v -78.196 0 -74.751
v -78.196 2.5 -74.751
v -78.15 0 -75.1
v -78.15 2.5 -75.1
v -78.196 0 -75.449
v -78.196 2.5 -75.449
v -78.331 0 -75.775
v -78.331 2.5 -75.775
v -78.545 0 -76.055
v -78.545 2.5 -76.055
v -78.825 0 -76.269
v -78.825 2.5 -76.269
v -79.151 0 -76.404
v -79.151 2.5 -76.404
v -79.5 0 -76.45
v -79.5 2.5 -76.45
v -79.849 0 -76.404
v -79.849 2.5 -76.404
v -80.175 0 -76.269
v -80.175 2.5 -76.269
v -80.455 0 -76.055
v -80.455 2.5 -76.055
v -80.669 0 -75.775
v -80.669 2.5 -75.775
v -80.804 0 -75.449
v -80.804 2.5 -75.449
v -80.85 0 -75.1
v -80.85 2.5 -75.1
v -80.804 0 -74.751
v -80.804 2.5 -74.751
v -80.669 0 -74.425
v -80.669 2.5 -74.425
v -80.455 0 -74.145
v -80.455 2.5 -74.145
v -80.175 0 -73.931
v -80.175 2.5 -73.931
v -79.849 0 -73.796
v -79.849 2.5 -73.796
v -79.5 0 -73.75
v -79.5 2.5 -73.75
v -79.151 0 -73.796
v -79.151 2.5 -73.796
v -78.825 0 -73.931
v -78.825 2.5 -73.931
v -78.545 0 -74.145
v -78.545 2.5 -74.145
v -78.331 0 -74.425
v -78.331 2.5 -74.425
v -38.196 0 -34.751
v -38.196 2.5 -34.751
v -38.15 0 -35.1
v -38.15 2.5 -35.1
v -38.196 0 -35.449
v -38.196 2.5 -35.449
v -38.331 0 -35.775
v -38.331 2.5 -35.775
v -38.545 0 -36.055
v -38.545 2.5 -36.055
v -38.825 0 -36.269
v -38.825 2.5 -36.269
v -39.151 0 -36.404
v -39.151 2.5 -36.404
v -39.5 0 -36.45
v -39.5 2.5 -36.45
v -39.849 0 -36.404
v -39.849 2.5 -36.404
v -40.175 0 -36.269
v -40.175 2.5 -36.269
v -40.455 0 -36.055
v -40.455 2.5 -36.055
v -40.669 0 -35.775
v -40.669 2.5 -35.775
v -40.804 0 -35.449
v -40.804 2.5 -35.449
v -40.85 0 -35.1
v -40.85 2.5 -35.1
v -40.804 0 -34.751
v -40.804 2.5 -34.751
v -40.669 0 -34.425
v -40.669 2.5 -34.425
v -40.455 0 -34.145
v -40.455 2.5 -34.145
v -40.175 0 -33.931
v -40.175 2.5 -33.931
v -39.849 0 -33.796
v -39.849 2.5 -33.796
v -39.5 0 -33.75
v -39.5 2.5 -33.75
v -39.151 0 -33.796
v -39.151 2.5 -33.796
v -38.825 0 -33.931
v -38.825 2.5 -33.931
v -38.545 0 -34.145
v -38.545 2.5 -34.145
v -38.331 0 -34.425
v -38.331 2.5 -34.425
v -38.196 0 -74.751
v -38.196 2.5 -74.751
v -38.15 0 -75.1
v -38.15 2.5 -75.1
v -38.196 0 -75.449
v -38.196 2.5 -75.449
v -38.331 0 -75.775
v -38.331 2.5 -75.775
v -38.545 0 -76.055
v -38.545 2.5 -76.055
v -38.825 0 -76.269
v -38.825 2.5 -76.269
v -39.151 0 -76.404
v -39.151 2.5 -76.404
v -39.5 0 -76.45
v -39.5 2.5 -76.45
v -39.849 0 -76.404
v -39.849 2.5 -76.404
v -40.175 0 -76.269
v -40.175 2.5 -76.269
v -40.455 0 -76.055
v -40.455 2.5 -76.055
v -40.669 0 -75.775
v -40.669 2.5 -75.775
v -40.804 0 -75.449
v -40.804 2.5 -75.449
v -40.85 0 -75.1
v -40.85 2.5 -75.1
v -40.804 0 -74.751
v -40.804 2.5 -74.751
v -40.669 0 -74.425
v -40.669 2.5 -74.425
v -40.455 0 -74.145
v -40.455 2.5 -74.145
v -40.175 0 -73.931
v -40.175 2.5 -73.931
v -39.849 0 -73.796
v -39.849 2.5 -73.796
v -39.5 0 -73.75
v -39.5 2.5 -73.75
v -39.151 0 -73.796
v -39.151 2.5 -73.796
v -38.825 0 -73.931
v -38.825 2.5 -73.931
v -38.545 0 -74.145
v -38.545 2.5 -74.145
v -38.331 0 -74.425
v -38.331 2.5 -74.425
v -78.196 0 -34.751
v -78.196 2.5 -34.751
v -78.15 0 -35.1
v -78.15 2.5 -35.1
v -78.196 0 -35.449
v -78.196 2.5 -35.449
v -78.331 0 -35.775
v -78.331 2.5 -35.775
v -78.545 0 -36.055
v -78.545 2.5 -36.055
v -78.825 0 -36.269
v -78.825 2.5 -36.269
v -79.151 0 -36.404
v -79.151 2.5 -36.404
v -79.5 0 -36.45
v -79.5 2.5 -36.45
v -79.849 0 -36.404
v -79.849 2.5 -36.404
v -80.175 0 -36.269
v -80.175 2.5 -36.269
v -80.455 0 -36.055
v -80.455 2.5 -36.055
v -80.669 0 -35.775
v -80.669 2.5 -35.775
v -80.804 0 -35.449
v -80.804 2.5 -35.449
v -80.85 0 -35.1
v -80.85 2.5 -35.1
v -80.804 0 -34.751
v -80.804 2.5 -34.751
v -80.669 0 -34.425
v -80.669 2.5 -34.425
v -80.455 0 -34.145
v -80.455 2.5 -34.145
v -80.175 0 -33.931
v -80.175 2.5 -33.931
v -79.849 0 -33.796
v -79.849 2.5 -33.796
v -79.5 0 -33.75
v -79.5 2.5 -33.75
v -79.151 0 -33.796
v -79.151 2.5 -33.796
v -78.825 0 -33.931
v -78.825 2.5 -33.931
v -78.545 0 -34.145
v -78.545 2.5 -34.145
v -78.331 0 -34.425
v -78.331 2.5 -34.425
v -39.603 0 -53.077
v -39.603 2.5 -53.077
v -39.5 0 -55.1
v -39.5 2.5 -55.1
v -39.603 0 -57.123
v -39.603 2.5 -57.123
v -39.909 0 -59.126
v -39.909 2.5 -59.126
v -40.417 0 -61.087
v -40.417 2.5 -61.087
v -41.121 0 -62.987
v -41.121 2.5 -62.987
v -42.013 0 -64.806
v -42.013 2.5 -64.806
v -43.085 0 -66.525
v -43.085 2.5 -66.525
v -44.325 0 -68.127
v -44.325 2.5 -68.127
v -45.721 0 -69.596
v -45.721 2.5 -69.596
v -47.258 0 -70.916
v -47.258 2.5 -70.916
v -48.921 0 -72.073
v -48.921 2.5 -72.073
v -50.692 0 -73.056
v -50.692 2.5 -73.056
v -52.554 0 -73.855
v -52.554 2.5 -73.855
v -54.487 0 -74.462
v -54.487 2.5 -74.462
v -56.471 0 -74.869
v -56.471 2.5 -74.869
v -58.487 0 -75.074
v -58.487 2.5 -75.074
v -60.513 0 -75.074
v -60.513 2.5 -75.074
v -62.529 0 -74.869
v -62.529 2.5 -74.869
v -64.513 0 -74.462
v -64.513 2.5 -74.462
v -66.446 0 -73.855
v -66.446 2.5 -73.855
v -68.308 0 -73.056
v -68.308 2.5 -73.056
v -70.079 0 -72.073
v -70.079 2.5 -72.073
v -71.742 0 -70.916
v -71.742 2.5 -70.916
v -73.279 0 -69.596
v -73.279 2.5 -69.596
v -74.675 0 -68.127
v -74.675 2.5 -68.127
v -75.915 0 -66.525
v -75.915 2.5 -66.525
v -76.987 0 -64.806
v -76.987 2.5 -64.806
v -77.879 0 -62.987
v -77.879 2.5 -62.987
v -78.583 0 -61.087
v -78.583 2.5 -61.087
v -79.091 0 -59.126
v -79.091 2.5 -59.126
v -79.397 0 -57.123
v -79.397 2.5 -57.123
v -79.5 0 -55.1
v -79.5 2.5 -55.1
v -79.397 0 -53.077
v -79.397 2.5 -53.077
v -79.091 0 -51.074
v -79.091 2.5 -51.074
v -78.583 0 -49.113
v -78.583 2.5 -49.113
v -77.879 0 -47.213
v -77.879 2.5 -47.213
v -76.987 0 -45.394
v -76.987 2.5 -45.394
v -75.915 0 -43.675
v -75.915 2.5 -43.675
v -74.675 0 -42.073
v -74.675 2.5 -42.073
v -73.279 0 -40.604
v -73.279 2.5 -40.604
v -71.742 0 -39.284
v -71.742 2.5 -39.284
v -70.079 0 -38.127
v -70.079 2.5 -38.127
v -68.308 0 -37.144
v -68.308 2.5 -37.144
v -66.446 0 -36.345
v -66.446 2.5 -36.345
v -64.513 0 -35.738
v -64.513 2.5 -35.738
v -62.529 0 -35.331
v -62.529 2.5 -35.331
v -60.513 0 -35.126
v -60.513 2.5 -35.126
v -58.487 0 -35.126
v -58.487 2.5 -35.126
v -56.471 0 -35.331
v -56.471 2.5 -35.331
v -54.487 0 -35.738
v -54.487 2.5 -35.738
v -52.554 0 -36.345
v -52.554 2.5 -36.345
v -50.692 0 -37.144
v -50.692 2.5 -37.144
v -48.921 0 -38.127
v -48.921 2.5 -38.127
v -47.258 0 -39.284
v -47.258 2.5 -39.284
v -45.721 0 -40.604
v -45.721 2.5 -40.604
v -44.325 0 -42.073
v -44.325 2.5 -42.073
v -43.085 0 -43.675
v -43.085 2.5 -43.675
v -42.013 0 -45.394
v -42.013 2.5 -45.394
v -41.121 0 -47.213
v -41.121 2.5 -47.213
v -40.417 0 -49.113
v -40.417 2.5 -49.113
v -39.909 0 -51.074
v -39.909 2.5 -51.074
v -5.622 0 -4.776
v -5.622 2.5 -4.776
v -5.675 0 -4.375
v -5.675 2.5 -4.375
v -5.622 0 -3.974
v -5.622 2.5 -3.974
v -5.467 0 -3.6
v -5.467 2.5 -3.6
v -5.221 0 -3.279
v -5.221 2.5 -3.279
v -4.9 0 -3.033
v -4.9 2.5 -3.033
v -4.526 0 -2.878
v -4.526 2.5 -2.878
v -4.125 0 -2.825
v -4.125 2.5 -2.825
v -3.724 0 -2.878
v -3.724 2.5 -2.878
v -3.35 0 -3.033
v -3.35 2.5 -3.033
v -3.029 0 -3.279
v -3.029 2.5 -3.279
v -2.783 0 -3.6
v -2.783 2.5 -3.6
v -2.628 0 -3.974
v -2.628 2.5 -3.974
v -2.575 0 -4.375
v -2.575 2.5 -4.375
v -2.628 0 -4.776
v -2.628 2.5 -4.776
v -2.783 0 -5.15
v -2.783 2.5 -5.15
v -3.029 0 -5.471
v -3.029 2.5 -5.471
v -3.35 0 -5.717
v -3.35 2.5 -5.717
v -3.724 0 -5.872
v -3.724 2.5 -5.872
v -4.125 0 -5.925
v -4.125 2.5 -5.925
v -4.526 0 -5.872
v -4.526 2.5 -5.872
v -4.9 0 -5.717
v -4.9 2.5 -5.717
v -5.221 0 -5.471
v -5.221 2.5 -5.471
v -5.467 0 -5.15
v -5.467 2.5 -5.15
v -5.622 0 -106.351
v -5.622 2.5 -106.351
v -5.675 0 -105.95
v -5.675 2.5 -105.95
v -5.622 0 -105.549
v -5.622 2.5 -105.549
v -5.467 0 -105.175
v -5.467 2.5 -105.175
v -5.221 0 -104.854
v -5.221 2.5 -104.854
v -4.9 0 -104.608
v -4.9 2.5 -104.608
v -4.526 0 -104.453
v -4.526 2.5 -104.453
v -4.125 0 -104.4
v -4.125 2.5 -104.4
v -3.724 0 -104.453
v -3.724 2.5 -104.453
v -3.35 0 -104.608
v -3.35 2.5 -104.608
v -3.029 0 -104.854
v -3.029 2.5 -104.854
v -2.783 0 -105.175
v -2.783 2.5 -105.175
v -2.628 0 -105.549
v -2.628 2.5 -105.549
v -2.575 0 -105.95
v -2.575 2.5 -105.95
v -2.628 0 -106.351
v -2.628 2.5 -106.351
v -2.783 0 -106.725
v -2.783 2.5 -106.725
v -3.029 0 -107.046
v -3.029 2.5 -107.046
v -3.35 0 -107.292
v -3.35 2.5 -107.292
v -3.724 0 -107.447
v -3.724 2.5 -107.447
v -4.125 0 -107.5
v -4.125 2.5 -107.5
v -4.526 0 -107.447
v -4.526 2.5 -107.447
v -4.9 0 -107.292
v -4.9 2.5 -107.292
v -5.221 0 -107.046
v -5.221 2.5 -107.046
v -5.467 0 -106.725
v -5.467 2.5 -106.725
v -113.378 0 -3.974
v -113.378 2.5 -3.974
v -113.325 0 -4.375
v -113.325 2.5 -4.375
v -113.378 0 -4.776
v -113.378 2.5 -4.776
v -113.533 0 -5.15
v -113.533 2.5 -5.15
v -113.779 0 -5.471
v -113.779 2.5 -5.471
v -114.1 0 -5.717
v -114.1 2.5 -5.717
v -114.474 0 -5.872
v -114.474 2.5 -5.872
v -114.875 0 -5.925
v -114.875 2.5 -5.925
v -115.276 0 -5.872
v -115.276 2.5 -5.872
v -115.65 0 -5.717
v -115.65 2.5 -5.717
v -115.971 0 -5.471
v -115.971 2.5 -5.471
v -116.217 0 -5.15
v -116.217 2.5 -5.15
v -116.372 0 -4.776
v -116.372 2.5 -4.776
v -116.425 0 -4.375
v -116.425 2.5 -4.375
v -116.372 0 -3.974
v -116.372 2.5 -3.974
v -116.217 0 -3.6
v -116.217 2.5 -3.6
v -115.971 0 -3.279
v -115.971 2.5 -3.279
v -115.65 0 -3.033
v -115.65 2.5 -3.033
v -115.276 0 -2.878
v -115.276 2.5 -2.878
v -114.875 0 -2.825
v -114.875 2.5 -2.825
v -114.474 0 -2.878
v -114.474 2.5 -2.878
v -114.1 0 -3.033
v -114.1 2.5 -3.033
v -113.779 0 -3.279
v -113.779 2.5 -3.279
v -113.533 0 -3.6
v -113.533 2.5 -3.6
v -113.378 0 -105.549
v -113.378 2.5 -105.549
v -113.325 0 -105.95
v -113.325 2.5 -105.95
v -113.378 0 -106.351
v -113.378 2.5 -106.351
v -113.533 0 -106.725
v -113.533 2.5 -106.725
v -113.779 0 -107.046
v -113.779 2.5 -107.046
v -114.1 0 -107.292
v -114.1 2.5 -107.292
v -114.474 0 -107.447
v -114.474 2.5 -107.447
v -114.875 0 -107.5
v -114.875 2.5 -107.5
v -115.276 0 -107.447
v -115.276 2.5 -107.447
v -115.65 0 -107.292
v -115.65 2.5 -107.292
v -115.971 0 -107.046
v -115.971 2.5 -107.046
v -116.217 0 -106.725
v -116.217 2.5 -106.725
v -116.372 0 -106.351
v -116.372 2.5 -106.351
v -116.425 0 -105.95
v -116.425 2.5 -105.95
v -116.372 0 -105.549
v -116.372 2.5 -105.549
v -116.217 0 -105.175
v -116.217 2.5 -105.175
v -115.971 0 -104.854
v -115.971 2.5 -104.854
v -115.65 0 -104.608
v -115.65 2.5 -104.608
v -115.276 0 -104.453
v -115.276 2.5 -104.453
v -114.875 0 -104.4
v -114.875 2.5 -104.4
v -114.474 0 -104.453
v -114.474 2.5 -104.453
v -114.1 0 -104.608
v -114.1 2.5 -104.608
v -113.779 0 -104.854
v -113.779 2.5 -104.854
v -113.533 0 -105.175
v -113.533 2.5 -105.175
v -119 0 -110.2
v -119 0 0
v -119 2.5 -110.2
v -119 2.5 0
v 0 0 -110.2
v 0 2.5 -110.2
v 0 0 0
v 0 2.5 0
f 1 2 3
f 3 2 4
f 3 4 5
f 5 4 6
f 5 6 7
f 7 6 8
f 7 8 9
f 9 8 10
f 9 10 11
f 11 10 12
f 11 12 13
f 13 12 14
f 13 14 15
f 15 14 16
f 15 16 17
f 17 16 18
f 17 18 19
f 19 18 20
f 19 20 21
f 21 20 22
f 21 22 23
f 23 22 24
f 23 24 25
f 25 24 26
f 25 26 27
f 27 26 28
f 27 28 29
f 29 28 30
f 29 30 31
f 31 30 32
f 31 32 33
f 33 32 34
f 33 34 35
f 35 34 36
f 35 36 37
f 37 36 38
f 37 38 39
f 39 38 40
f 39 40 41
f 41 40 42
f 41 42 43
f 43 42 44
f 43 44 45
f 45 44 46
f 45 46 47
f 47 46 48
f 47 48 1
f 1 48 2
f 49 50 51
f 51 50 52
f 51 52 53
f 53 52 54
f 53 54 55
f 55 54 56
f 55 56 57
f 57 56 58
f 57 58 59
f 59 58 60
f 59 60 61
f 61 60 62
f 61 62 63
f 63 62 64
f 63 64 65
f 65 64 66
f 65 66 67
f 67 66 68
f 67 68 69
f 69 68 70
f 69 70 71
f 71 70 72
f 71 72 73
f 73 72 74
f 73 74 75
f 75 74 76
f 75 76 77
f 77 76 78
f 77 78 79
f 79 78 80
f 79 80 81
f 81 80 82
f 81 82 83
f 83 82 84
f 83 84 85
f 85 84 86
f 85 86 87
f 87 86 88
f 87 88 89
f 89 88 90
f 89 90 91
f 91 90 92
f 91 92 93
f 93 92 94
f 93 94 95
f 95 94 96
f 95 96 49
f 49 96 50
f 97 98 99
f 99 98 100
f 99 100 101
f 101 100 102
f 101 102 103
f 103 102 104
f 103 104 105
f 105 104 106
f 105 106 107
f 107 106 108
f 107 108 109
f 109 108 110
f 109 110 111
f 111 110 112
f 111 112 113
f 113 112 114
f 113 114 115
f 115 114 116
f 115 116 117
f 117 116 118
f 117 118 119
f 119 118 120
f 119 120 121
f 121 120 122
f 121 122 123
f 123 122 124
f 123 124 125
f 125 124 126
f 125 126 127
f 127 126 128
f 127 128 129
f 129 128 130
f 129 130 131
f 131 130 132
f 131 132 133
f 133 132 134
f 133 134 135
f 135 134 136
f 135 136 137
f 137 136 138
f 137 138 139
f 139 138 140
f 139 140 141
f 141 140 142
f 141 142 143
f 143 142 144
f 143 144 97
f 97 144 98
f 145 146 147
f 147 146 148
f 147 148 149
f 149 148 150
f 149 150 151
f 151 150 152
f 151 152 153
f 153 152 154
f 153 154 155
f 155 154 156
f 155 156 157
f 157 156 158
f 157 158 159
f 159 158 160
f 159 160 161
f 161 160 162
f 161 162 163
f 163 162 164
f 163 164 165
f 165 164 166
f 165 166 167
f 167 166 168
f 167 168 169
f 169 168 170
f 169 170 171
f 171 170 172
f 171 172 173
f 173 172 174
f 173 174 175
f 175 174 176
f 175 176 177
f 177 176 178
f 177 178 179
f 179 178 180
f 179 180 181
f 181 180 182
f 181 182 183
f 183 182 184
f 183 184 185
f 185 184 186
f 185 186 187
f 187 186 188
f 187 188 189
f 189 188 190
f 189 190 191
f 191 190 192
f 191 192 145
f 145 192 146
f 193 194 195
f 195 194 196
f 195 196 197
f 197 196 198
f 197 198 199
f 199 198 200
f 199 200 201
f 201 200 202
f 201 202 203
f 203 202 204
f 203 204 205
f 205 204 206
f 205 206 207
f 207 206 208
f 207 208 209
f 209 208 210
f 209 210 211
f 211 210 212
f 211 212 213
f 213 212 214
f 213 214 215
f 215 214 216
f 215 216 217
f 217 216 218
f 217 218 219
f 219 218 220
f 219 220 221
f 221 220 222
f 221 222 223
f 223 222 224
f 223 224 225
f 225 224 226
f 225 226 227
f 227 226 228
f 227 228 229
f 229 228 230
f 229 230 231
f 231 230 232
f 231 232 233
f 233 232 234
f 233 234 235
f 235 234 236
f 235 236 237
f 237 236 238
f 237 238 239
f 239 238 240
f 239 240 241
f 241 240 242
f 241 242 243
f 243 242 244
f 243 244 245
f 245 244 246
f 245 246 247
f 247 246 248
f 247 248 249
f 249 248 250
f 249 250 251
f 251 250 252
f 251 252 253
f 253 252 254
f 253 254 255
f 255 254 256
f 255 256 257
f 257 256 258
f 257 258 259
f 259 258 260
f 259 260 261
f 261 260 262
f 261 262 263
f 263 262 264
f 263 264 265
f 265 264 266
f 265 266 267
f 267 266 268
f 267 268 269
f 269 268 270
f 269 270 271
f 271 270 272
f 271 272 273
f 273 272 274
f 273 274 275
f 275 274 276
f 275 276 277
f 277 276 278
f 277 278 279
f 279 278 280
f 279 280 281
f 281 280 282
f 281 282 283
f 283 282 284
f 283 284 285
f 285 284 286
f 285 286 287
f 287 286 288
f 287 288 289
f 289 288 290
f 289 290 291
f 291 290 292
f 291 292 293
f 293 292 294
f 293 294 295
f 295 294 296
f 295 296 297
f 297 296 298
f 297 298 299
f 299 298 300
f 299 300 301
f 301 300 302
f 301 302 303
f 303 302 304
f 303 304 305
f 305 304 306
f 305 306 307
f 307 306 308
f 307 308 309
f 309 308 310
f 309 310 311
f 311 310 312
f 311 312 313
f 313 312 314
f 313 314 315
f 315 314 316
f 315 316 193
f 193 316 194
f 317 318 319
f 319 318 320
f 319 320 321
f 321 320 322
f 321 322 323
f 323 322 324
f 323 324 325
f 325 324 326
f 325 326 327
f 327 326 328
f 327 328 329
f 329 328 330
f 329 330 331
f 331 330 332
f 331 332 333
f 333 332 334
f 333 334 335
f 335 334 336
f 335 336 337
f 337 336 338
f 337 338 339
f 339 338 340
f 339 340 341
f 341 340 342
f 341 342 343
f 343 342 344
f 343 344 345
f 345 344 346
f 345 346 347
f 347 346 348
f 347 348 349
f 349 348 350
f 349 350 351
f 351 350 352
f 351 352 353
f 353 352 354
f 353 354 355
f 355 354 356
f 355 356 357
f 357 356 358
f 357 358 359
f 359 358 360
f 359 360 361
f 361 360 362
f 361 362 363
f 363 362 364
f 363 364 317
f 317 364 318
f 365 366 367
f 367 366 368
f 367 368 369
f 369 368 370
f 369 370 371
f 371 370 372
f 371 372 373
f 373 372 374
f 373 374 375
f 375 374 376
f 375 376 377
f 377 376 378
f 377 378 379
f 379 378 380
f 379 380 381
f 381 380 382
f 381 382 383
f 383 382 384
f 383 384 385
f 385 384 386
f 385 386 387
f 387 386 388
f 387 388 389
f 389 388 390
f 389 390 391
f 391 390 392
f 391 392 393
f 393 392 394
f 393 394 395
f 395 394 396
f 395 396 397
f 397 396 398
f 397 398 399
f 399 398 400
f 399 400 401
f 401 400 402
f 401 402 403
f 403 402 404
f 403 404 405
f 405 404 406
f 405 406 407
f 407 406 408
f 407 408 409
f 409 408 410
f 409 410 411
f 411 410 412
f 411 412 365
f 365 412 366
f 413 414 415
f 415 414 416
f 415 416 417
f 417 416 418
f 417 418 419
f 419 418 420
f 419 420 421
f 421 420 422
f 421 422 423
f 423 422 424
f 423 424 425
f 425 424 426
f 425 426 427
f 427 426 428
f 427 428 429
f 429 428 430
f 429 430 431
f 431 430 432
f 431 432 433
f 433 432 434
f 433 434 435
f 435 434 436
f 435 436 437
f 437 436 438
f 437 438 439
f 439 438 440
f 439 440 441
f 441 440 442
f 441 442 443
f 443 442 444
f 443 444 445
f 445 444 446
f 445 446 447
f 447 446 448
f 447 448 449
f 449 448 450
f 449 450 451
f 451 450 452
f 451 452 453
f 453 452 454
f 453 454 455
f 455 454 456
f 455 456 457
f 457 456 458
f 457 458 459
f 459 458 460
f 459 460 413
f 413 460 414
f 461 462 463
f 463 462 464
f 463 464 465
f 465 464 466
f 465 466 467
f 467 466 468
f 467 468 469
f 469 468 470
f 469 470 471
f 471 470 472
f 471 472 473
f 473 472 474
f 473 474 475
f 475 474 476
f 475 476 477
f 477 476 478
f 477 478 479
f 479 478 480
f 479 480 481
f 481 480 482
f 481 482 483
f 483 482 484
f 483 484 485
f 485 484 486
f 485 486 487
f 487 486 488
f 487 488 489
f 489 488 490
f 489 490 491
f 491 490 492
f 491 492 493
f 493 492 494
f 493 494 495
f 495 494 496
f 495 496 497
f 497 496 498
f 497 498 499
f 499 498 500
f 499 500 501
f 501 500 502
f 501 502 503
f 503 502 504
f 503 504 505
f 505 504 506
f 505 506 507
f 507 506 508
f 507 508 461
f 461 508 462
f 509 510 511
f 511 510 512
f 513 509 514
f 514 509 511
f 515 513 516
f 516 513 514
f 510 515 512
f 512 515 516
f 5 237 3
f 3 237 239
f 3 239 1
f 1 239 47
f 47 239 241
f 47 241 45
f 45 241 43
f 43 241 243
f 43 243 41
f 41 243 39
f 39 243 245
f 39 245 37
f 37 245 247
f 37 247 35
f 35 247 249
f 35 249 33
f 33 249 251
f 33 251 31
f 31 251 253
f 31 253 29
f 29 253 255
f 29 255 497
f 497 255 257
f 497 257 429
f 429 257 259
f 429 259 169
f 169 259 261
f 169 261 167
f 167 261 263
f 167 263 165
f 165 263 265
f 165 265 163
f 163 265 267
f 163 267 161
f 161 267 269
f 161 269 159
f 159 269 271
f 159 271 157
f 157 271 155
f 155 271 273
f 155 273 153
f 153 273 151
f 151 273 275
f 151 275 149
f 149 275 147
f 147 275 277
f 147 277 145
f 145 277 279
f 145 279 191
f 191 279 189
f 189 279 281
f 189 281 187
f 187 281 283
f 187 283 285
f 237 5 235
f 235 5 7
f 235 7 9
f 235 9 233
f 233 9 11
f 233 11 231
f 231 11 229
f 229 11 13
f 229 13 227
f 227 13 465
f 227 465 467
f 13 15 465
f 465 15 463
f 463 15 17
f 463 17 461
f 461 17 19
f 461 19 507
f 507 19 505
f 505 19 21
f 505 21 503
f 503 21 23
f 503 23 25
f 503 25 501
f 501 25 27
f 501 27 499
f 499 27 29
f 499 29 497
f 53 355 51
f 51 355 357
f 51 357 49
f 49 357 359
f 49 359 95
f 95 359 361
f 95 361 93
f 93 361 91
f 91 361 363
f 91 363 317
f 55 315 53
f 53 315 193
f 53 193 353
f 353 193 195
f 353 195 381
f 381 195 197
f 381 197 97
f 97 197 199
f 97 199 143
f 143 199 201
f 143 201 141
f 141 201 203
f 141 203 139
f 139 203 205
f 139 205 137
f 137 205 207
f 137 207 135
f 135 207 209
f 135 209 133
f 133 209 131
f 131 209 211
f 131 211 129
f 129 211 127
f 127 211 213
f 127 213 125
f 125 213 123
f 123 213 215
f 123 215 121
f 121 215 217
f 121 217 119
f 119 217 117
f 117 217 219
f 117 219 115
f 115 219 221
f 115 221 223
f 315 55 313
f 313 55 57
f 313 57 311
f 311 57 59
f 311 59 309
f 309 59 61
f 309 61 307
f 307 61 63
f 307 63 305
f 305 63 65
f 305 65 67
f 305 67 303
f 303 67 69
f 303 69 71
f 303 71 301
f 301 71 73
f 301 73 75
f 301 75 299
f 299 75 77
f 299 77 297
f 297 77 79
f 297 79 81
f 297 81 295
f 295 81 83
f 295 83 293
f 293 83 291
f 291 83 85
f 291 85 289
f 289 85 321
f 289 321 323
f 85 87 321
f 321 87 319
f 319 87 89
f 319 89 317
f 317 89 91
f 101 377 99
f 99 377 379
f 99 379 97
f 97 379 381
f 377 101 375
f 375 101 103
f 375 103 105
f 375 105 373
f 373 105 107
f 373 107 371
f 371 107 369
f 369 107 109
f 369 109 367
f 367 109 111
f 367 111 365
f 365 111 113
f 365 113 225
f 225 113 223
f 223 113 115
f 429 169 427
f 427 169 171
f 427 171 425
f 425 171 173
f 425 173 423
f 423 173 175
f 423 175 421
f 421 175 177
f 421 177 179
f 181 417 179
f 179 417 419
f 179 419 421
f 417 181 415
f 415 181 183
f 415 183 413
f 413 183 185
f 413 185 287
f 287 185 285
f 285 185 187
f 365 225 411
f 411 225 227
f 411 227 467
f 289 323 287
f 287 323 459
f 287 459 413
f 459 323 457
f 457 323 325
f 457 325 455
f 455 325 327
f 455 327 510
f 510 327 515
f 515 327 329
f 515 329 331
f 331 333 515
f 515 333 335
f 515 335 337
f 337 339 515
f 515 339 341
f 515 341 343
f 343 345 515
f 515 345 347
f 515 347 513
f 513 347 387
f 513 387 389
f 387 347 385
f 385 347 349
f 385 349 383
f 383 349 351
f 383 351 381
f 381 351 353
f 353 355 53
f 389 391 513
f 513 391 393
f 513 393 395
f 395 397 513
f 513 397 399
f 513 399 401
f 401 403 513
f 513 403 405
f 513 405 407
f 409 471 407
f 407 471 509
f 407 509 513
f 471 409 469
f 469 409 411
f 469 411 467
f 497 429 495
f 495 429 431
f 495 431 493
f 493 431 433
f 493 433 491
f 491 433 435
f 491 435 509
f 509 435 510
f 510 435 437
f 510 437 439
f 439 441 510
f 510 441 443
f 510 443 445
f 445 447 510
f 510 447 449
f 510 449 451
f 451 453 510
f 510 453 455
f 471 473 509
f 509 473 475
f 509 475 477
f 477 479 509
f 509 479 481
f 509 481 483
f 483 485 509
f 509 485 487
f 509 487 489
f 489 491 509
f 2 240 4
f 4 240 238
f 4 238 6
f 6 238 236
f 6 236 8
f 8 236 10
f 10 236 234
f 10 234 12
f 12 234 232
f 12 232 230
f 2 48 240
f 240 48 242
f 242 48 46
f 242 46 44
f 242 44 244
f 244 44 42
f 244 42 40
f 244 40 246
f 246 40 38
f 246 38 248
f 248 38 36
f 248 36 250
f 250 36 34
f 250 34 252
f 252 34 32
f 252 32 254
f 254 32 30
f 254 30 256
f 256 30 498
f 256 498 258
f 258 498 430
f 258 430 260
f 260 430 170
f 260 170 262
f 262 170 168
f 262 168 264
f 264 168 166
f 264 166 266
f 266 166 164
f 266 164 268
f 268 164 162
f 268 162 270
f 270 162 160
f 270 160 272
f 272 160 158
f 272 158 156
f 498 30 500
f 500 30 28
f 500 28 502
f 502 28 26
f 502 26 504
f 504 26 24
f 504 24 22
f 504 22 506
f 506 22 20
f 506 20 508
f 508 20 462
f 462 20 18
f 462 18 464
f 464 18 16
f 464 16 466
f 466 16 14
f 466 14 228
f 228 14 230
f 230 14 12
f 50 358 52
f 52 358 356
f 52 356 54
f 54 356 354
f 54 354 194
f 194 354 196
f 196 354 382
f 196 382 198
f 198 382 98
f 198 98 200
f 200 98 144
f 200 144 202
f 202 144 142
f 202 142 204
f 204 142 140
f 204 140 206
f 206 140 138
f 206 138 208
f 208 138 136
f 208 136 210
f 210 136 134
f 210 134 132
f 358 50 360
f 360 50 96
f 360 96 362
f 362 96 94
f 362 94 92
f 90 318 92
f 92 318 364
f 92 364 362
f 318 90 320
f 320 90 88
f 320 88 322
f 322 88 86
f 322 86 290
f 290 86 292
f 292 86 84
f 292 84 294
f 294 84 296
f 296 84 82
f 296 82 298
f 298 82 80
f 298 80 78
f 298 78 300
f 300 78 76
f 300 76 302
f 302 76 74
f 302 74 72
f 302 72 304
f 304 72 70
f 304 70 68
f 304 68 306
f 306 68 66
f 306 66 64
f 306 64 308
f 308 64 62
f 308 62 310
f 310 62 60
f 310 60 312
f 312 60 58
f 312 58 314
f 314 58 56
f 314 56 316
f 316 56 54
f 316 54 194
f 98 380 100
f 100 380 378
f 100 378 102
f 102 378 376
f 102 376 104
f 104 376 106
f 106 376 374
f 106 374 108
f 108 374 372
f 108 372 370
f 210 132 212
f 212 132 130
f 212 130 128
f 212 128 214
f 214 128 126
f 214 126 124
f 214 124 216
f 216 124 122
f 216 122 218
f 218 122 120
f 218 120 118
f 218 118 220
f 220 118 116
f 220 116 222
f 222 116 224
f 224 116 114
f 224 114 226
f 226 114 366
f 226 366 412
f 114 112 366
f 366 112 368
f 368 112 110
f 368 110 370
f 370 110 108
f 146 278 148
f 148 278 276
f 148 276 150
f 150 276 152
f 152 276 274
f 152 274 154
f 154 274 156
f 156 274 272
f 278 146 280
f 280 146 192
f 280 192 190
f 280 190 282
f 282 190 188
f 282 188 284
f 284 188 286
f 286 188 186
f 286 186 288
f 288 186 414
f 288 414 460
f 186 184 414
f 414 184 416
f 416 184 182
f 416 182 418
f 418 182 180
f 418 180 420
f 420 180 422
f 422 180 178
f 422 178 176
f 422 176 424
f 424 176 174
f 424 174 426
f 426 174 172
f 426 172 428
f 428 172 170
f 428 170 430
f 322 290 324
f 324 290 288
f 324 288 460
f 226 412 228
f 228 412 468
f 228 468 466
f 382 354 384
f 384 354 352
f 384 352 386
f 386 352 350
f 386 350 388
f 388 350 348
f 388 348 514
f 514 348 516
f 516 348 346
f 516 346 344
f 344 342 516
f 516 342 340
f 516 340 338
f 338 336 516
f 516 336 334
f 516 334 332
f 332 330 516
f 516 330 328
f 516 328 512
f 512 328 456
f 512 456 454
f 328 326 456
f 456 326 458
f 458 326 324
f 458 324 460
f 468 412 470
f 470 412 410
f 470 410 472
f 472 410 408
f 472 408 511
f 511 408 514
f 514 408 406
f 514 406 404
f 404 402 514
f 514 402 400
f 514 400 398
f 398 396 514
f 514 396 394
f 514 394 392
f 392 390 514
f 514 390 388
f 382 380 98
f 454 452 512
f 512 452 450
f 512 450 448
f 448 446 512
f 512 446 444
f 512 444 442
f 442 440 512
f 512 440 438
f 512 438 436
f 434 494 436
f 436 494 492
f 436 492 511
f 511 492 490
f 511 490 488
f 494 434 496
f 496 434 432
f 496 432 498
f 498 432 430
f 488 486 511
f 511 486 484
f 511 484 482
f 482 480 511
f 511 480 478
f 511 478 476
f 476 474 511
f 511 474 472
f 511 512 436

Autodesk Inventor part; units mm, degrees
ref_plane "YZ Plane" through (0, 0, 0) normal (1, 0, 0) x (0, 1, 0)
ref_plane "XZ Plane" through (0, 0, 0) normal (0, 1, 0) x (-1, 0, 0)
sketch "Sketch1" plane through (0, 0, 0) normal (0, 1, 0) x (-1, 0, 0)
  line L0 (0, 0) -> (119, 0)
  line L1 (119, 0) -> (119, -110.2)
  line L2 (119, -110.2) -> (0, -110.2)
  line L3 (0, -110.2) -> (0, 0)
  dimension "d0" = 119
  dimension "d1" = 110.2
extrude "Extrusion1" add sketch "Sketch1" along normal blind 2.5
sketch "Sketch2" plane through (0, 2.5, 0) normal (0, 1, 0) x (1, 0, 0)
  line L0 (-119, 0) -> (0, 0) projected
  line L1 (0, 0) -> (0, 110.2) projected
  line L2 (0, 110.2) -> (-119, 110.2) projected
  line L3 (-119, 110.2) -> (-119, 0) projected
  circle A0 centre (-114.875, 4.375) radius 1.55
  circle A1 centre (-11.5301, 10.067) radius 1.55
  circle A2 centre (-11.5301, 99.7072) radius 1.55
  circle A3 centre (-114.875, 105.95) radius 1.55
  dimension "d4" = 3.1
  dimension "d5" = 3.1
  dimension "d6" = 3.1
  dimension "d7" = 3.1
  dimension "d8" = 4.375
  dimension "d9" = 4.125
  dimension "d10" = 4.25
  dimension "d11" = 4.125
extrude "Extrusion2" cut sketch "Sketch2" against normal through all contours A0 | A3
ref_plane "Work Plane1" through (-59.5, 0, 0) normal (1, 0, 0) x (0, 0, -1)
mirror "Mirror1" about plane through (-59.5, 0, 0) normal (1, 0, 0) of "Extrusion2"
sketch "Sketch3" plane through (0, 2.5, 0) normal (0, 1, 0) x (1, 0, 0)
  circle A0 centre (-4.125, 4.375) radius 1.55 projected
  circle A1 centre (-4.125, 105.95) radius 1.55 projected
  circle A2 centre (-114.875, 4.375) radius 1.55 projected
  circle A3 centre (-114.875, 105.95) radius 1.55 projected
  line L0 (-119, 0) -> (0, 0) projected
  line L1 (0, 0) -> (0, 110.2) projected
  line L2 (0, 110.2) -> (-119, 110.2) projected
  line L3 (-119, 110.2) -> (-119, 0) projected
  circle A4 centre (-59.5, 55.1) radius 20
  circle A5 centre (-39.5, 75.1) radius 1.35
  circle A6 centre (-39.5, 35.1) radius 1.35
  circle A7 centre (-79.5, 35.1) radius 1.35
  circle A8 centre (-79.5, 75.1) radius 1.35
  dimension "d26" = 2.7
  dimension "d27" = 2.7
extrude "Extrusion3" cut sketch "Sketch3" against normal through all contours A4 | A5 | A6 | A7 | A8
properties part number "Base Cover Left"
